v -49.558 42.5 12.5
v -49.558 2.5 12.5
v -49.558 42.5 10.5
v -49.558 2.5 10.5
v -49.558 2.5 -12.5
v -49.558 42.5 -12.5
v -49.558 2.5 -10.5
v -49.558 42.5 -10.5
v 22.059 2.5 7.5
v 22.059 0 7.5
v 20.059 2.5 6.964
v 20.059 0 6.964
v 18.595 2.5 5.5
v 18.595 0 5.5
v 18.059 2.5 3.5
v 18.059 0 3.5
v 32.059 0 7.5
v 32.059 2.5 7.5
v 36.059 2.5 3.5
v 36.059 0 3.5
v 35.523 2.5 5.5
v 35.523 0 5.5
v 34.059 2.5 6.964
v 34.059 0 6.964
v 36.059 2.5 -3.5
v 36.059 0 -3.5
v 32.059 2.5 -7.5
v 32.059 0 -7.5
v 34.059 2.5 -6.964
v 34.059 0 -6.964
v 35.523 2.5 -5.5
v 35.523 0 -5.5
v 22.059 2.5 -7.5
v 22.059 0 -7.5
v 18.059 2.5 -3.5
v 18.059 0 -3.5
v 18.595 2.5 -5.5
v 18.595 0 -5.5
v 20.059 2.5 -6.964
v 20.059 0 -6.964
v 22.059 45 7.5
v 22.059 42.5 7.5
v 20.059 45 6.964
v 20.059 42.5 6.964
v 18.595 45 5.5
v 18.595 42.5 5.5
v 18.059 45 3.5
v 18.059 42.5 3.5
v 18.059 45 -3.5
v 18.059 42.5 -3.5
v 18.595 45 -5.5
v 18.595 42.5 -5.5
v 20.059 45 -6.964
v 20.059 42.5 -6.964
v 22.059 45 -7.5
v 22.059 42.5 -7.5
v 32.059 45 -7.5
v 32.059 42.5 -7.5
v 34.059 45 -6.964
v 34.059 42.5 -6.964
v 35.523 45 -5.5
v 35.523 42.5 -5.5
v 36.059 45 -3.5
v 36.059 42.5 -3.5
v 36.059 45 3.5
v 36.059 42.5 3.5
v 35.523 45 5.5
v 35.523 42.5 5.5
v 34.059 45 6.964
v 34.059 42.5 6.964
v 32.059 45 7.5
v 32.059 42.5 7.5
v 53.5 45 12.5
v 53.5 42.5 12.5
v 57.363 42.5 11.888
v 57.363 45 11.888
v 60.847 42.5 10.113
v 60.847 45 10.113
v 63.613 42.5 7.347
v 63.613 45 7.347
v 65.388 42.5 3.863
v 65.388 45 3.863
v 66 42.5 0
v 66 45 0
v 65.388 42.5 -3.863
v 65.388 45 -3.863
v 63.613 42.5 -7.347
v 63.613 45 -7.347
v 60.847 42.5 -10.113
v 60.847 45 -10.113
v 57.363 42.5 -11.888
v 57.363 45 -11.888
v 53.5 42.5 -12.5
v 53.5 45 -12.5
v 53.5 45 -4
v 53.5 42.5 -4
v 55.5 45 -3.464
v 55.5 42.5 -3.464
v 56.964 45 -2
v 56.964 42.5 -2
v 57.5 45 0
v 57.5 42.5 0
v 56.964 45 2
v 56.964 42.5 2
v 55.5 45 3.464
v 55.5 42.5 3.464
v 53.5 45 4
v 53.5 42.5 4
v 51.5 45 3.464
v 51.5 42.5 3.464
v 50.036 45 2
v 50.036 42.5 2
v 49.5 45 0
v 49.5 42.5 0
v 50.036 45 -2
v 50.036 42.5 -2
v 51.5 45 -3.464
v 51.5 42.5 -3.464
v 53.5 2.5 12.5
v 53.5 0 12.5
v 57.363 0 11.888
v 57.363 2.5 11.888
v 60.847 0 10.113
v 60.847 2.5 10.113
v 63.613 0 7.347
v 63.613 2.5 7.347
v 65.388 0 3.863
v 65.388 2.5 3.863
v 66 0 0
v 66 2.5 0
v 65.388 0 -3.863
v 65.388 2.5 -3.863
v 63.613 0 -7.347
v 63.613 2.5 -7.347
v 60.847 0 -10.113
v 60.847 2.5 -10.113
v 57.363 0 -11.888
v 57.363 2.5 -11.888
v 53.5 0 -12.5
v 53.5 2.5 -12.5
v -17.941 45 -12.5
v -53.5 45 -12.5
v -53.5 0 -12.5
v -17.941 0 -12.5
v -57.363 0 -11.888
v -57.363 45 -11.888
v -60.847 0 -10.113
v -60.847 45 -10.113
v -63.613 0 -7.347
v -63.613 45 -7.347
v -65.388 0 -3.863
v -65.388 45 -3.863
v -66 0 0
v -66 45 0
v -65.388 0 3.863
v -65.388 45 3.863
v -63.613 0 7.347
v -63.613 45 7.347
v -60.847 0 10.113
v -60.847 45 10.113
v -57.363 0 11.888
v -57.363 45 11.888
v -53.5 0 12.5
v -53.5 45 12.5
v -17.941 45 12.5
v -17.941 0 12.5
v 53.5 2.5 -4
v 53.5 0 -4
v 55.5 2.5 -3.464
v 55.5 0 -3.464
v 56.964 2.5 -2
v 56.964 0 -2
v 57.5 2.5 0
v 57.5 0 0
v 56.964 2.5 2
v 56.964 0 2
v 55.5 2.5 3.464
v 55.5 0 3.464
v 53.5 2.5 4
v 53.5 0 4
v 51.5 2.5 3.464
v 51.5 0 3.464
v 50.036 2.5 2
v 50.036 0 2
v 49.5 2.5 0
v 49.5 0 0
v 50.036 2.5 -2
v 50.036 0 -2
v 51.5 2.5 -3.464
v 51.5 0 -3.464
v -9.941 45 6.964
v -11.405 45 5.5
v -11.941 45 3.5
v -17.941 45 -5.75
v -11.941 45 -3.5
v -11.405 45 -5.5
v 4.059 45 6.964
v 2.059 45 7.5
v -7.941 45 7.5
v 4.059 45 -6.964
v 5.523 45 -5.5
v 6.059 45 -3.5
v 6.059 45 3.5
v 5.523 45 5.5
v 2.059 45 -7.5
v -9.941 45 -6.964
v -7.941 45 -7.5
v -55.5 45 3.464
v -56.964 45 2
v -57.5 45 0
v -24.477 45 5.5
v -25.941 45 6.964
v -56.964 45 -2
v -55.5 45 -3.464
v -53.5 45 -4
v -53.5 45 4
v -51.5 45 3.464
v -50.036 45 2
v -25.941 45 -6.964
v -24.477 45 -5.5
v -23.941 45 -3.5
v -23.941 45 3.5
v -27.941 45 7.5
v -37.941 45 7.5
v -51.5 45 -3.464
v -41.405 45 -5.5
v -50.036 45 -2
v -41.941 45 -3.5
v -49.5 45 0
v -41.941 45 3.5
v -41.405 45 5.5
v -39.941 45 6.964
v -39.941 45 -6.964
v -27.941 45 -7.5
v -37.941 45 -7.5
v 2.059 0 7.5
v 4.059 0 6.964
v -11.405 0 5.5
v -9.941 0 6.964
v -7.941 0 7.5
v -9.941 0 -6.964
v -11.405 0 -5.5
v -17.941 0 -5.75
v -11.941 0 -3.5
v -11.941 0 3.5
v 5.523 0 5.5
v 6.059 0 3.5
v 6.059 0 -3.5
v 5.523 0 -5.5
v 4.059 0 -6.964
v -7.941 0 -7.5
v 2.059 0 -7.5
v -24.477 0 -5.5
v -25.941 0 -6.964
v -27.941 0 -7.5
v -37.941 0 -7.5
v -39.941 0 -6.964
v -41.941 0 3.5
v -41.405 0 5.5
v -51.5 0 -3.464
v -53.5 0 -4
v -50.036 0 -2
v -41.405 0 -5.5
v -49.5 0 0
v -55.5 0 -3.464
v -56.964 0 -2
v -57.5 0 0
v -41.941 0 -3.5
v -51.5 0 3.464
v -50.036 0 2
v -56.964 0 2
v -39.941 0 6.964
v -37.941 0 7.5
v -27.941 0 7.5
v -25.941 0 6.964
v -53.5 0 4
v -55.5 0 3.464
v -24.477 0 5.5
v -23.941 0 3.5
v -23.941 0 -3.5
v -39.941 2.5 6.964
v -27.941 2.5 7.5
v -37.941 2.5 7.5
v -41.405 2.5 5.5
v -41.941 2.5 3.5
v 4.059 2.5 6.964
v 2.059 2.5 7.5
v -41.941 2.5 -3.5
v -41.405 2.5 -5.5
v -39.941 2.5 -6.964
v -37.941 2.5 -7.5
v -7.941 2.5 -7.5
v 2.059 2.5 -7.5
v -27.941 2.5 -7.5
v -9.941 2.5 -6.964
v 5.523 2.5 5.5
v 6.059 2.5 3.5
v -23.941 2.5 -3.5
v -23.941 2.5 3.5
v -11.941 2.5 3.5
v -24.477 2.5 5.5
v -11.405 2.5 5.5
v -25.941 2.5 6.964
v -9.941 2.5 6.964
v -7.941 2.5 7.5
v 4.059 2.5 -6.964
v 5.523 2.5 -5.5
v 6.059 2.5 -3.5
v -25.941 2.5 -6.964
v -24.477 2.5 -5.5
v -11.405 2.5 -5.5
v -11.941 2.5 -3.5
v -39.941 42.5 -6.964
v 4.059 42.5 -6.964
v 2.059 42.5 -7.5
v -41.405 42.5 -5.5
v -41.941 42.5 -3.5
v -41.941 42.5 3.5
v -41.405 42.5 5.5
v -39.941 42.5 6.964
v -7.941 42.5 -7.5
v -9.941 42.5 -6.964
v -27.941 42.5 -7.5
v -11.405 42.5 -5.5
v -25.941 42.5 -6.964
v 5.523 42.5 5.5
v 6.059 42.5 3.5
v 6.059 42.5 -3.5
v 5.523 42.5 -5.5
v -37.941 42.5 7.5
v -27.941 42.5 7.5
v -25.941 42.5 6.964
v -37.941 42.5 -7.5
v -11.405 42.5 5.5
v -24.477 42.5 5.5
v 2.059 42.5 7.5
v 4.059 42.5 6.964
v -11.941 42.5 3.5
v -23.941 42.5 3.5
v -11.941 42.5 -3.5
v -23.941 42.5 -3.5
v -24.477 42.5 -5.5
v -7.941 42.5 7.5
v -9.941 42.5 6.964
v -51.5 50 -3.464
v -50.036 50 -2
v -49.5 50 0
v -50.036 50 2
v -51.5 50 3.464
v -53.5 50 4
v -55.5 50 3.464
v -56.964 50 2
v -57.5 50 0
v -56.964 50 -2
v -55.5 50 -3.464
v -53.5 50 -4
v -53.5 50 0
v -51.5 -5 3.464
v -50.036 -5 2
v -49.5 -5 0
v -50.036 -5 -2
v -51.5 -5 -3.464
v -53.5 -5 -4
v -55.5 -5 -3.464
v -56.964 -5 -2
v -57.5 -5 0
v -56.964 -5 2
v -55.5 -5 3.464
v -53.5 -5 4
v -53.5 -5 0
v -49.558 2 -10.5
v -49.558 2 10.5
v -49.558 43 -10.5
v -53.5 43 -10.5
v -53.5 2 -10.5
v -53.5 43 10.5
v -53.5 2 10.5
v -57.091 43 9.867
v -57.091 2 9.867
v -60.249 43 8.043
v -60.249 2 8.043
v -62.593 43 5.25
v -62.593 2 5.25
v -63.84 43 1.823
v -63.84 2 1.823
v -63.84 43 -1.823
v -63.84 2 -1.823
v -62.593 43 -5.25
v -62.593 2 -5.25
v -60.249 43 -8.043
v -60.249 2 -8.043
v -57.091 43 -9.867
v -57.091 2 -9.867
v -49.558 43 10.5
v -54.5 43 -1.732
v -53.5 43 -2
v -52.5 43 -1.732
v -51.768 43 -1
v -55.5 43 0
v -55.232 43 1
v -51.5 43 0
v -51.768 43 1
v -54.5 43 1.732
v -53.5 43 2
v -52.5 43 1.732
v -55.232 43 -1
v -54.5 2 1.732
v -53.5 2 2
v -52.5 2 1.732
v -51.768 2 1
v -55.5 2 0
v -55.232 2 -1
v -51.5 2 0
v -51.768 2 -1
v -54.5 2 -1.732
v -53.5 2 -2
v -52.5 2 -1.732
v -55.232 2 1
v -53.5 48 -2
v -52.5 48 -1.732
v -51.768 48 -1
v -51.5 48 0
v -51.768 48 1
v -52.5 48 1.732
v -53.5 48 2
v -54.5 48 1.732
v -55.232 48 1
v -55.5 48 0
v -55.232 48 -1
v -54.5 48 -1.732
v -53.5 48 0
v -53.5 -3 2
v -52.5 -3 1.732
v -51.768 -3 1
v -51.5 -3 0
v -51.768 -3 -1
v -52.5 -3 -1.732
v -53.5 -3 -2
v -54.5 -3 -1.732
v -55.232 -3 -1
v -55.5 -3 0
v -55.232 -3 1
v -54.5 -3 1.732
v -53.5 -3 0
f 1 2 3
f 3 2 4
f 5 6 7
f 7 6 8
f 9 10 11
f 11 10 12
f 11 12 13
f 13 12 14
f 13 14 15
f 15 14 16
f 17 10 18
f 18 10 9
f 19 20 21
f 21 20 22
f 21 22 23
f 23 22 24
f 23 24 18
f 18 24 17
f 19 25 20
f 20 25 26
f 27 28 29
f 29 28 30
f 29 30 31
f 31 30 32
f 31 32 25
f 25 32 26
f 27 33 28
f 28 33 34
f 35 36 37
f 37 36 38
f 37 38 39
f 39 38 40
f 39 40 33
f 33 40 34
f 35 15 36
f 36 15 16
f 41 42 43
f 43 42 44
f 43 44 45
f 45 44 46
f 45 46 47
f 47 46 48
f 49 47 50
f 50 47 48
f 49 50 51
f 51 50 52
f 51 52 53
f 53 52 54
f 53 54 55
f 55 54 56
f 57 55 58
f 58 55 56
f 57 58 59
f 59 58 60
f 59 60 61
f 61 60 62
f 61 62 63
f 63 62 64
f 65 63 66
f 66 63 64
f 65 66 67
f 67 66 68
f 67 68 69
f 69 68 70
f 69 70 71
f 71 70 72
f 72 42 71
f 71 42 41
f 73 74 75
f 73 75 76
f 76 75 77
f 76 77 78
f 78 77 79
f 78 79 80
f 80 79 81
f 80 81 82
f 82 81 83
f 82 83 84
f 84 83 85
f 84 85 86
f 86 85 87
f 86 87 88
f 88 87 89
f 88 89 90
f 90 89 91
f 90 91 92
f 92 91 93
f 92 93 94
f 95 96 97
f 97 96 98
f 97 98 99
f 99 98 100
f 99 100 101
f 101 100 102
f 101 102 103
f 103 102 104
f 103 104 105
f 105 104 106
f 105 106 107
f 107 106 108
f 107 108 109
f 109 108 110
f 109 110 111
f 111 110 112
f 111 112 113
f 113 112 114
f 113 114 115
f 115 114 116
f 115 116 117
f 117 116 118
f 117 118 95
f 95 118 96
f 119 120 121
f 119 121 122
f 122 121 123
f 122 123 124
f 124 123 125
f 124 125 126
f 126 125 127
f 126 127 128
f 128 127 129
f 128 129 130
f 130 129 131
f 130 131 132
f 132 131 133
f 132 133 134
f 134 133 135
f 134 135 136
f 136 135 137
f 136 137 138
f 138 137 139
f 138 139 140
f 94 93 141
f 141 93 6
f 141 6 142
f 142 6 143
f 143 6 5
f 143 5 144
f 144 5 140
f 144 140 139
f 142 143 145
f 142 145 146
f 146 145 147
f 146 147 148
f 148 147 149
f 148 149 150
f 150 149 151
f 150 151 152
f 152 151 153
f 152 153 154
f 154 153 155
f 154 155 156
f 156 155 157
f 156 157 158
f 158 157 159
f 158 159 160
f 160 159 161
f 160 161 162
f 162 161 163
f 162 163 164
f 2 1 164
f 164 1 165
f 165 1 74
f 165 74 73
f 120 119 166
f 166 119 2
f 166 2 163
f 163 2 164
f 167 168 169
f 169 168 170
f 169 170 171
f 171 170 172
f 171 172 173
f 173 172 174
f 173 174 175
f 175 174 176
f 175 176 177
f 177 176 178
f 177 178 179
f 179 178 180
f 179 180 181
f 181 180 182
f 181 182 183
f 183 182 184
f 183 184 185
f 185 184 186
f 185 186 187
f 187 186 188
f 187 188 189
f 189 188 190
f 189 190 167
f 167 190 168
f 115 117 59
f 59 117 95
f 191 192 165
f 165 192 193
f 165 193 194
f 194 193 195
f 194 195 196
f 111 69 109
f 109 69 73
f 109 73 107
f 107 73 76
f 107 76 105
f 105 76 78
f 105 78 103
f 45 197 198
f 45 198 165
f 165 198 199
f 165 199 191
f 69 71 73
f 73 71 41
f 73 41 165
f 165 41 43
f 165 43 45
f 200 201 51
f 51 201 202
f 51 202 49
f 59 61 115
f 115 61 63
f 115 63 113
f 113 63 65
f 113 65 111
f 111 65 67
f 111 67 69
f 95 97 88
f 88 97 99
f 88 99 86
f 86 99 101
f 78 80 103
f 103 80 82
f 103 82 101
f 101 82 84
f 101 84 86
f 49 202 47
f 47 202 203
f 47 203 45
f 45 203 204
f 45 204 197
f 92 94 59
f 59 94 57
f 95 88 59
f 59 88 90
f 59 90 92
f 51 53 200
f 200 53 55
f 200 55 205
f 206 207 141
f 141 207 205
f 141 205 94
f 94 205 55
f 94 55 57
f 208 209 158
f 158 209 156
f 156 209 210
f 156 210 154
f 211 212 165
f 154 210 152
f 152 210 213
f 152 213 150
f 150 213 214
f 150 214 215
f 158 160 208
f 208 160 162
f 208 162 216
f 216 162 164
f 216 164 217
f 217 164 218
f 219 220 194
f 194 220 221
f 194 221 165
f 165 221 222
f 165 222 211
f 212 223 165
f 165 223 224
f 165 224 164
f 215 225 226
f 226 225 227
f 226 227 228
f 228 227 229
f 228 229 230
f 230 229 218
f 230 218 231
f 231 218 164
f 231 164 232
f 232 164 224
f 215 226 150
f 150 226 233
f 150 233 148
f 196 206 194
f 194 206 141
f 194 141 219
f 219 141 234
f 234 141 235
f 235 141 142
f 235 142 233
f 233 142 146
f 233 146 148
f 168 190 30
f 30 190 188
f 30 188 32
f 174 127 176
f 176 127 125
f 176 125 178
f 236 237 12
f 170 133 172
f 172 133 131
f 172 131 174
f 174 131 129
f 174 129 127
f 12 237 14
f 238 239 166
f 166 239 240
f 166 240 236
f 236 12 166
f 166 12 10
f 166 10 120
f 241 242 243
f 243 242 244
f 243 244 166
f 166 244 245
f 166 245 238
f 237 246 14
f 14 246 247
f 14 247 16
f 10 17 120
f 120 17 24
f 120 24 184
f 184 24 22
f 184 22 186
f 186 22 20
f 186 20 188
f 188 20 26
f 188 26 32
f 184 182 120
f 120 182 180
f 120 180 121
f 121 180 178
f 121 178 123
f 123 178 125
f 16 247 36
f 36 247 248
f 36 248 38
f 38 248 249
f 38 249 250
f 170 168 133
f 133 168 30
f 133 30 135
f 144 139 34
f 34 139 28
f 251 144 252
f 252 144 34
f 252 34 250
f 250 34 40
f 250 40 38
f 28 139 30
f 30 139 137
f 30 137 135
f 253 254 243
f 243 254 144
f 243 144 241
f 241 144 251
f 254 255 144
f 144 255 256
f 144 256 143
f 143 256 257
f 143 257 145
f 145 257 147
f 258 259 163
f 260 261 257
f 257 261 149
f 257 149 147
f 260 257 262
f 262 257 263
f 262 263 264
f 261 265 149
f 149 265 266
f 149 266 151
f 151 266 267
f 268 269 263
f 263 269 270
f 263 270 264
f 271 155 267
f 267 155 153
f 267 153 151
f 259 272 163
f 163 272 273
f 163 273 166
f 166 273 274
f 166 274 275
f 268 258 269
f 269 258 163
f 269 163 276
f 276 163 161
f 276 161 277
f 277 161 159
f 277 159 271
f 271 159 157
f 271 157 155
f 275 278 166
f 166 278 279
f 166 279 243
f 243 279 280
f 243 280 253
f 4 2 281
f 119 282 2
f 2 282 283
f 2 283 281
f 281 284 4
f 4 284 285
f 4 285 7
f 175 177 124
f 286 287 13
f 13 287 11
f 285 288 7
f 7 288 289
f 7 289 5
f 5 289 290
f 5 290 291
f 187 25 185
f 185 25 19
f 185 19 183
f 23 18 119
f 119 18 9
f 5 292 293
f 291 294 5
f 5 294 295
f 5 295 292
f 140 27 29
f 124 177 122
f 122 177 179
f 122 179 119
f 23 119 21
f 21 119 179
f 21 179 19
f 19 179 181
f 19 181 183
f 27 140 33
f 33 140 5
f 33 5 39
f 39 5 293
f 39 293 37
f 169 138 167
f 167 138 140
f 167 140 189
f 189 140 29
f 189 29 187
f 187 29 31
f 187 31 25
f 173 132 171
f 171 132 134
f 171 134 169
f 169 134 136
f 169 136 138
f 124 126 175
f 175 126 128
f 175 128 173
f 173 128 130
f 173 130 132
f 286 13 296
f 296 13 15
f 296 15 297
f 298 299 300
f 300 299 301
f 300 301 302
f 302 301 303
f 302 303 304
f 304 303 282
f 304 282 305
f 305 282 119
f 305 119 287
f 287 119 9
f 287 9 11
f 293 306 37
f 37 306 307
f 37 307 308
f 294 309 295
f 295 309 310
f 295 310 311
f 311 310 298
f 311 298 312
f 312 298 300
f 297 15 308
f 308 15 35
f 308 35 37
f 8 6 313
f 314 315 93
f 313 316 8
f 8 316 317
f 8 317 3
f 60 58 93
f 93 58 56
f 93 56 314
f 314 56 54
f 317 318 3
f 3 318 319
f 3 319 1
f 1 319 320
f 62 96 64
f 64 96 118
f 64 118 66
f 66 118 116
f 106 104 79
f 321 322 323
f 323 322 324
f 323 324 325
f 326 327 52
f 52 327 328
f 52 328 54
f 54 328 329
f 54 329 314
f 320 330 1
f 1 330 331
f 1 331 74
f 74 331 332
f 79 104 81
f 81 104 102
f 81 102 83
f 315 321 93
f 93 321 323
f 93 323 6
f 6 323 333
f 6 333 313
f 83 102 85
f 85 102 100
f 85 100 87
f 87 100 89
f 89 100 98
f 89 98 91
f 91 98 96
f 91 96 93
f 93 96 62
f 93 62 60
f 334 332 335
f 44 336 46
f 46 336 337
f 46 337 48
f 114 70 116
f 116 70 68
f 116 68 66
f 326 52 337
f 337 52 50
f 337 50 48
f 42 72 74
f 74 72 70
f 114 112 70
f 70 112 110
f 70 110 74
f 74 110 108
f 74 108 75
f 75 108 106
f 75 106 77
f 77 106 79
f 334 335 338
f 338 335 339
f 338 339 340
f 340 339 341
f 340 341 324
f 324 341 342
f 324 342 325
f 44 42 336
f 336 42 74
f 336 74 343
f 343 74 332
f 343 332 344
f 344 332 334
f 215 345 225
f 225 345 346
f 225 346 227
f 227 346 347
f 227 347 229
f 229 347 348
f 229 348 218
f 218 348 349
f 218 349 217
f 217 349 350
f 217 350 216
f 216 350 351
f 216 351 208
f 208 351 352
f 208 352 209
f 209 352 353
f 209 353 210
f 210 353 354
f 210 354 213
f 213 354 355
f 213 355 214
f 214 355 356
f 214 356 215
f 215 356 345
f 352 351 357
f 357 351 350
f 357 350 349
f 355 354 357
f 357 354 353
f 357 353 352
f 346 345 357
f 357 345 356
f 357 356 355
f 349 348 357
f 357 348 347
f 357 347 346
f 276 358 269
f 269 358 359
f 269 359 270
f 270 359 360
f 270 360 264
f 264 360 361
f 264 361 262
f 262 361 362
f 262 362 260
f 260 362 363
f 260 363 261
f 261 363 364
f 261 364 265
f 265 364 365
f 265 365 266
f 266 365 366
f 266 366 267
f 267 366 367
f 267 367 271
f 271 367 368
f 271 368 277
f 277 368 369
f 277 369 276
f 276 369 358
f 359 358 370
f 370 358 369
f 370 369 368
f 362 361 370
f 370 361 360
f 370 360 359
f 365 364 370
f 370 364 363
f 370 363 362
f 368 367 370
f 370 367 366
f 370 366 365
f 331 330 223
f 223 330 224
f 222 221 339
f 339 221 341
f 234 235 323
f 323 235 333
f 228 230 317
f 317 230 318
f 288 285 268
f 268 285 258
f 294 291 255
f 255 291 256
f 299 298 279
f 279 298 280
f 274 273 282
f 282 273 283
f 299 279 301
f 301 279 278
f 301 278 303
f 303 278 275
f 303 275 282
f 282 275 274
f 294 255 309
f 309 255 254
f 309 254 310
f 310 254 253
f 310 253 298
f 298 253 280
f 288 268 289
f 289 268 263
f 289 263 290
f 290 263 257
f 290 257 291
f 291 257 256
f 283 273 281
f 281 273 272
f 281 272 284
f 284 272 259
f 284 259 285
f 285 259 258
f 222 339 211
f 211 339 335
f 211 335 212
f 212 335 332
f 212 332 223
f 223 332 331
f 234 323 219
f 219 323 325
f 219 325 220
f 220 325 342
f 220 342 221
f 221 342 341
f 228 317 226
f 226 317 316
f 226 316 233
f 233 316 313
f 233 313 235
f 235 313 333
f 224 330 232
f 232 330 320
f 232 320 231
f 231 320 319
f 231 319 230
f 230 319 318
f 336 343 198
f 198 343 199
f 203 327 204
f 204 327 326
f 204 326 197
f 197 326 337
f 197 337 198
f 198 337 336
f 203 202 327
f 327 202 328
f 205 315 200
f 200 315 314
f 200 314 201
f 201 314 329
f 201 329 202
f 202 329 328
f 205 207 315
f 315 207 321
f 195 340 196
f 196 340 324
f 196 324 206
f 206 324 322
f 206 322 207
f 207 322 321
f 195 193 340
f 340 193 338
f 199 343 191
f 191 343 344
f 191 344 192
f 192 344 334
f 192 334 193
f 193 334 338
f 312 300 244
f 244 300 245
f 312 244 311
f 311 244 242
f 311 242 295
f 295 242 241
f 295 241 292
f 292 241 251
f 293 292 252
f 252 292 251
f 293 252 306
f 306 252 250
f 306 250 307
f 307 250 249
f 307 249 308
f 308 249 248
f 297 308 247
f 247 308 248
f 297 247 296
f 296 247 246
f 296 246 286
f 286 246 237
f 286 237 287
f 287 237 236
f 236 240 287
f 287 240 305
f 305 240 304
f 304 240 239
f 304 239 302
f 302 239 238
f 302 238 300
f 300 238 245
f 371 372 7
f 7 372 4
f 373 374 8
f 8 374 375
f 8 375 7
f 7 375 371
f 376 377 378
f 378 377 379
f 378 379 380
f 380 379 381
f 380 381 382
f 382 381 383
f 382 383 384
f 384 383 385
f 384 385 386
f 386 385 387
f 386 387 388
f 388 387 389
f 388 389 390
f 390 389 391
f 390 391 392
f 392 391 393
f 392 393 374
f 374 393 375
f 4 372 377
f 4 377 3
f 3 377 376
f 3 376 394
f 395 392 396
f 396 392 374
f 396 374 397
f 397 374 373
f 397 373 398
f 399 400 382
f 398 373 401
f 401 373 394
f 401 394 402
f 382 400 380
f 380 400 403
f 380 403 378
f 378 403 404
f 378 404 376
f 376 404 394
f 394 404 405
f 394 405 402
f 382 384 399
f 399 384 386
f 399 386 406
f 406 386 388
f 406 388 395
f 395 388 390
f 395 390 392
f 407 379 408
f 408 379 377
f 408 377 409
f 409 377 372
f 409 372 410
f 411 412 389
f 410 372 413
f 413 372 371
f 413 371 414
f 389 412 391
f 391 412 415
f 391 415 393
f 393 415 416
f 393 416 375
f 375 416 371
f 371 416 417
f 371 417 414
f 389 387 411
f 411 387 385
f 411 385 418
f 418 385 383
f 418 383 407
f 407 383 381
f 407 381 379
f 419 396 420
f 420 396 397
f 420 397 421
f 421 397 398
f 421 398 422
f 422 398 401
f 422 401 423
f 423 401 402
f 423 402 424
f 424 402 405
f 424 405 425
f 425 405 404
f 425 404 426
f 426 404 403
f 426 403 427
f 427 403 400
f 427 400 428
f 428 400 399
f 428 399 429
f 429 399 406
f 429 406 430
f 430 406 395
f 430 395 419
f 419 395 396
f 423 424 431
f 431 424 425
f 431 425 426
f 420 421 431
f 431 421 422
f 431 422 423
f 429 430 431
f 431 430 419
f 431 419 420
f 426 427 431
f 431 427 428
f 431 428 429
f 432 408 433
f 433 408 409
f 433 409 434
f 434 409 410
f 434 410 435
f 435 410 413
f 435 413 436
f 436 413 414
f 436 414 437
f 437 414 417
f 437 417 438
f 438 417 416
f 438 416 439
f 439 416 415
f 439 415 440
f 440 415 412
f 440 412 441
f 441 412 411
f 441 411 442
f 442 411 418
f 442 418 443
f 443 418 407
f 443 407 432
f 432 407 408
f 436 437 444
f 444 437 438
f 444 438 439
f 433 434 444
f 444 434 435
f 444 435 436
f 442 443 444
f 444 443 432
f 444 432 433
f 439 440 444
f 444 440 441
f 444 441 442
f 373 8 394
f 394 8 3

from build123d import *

# Parameters (mm, degrees)
SKETCH1_R              = 4
BOSS_EXTRUDE1_DEPTH    = 45
SKETCH2_W              = 50.339144224
SKETCH2_H              = 25
CUT_EXTRUDE1_DEPTH     = 20
SKETCH3_R              = 4
BOSS_EXTRUDE2_DEPTH    = 5
CUT_EXTRUDE2_REACH     = 88.493
SKETCH4_W              = 77.888808367
SKETCH4_H              = 40
SKETCH5_W              = 18
SKETCH5_H              = 15
CUT_EXTRUDE3_DEPTH     = 84.739178405
FILLET1_R              = 4
LPATTERN1_COUNT        = 3
LPATTERN1_PITCH        = 30
FILLET1_OF_LPATTERN1_R = 4
SHELL1_START           = 2
SHELL1_DEPTH           = 41
SHELL1_START_2         = -3
SHELL1_2_OUTLINE_R     = 2
SHELL1_2_DEPTH         = 51


# Read off the part's stored shape, not the designer's step: Shell1
with BuildPart() as part:
    # Sketch1 → Boss-Extrude1 (new body)
    with BuildSketch(Plane(origin=(0, 0, 0), x_dir=(1, 0, 0), z_dir=(0, 1, 0))):
        with BuildLine():
            Line((-53.5, -12.5), (53.5, -12.5))
            ThreePointArc((53.5, -12.5), (66, 0), (53.5, 12.5))
            Line((53.5, 12.5), (-53.5, 12.5))
            ThreePointArc((-53.5, 12.5), (-66, 0), (-53.5, -12.5))
        make_face()
        with Locations(Location((53.5, 0, 0), (0, 0, 90))):
            Circle(SKETCH1_R, mode=Mode.SUBTRACT)
    extrude(amount=BOSS_EXTRUDE1_DEPTH)

    # Sketch2 → Cut-Extrude1 (cut, symmetric)
    with BuildSketch(Plane(origin=(0, 22.5, 0), x_dir=(1, 0, 0), z_dir=(0, 1, 0))):
        with Locations((53.5, 0)):
            Rectangle(SKETCH2_W, SKETCH2_H)
    extrude(amount=CUT_EXTRUDE1_DEPTH, both=True, mode=Mode.SUBTRACT)

    # Sketch3 → Boss-Extrude2 (add, symmetric)
    with BuildSketch(Plane(origin=(0, 45, 0), x_dir=(1, 0, 0), z_dir=(0, 1, 0))):
        with Locations(Location((-53.5, 0, 0), (0, 0, 270))):
            Circle(SKETCH3_R)
    boss_extrude2 = extrude(amount=BOSS_EXTRUDE2_DEPTH, both=True)

    # Mirror1: Boss-Extrude2 across plane
    add(boss_extrude2.mirror(Plane.ZX.offset(22.5)))

    # Sketch4 → Cut-Extrude2 (cut, up to next)
    with BuildSketch(Plane(origin=(0, 0, -12.5), x_dir=(-1, 0, 0), z_dir=(0, 0, -1)), mode=Mode.PRIVATE) as cut_extrude2_sk1:
        with Locations((10.613976295, 22.5)):
            Rectangle(SKETCH4_W, SKETCH4_H)
    cut_extrude2_tool1 = extrude(cut_extrude2_sk1.sketch, amount=-CUT_EXTRUDE2_REACH, mode=Mode.PRIVATE) & part.part
    add(cut_extrude2_tool1.solids().sort_by_distance((-10.613976, 22.5, -12.5))[0], mode=Mode.SUBTRACT)

    # Sketch5 → Cut-Extrude3 (cut, through all)
    with BuildSketch(Plane(origin=(0, 45, 0), x_dir=(1, 0, 0), z_dir=(0, 1, 0))):
        with Locations((-32.941043084, 0)):
            Rectangle(SKETCH5_W, SKETCH5_H)
    cut_extrude3 = extrude(amount=-CUT_EXTRUDE3_DEPTH, mode=Mode.SUBTRACT)

    # Fillet1
    fillet1_edges = [part.edges().sort_by_distance(p)[0] for p in [
        (-41.941043084, 1.25, 7.5),
        (-41.941043084, 1.25, -7.5),
        (-23.941043084, 1.25, -7.5),
        (-23.941043084, 1.25, 7.5),
        (-41.941043084, 43.75, 7.5),
        (-41.941043084, 43.75, -7.5),
        (-23.941043084, 43.75, -7.5),
        (-23.941043084, 43.75, 7.5),
    ]]
    fillet(fillet1_edges, radius=FILLET1_R)

    # LPattern1: Cut-Extrude3 ×3
    with Locations(*[(i * LPATTERN1_PITCH, 0, 0) for i in range(1, LPATTERN1_COUNT)]):
        add(cut_extrude3, mode=Mode.SUBTRACT)

    # Fillet1 of LPattern1
    fillet1_of_lpattern1_edges = [part.edges().sort_by_distance(p)[0] for p in [
        (-11.941043084, 1.25, 7.5),
        (-11.941043084, 1.25, -7.5),
        (6.058956916, 1.25, -7.5),
        (6.058956916, 1.25, 7.5),
        (-11.941043084, 43.75, 7.5),
        (-11.941043084, 43.75, -7.5),
        (6.058956916, 43.75, -7.5),
        (6.058956916, 43.75, 7.5),
        (18.058956916, 1.25, 7.5),
        (18.058956916, 1.25, -7.5),
        (36.058956916, 1.25, -7.5),
        (36.058956916, 1.25, 7.5),
        (18.058956916, 43.75, 7.5),
        (18.058956916, 43.75, -7.5),
        (36.058956916, 43.75, -7.5),
        (36.058956916, 43.75, 7.5),
    ]]
    fillet(fillet1_of_lpattern1_edges, radius=FILLET1_OF_LPATTERN1_R)

    # Shell1 outline → Shell1 (cut)
    with BuildSketch(Plane(origin=(0, 0, 0), x_dir=(1, 0, 0), z_dir=(0, 1, 0)).offset(SHELL1_START)):
        with BuildLine():
            Line((-49.558380479, -10.5), (-49.558380479, 10.5))
            Line((-49.558380479, 10.5), (-53.5, 10.5))
            ThreePointArc((-53.5, 10.5), (-64, 0), (-53.5, -10.5))
            Line((-53.5, -10.5), (-49.558380479, -10.5))
        make_face()
    extrude(amount=SHELL1_DEPTH, mode=Mode.SUBTRACT)

    # Shell1 2 outline → Shell1 2 (cut)
    with BuildSketch(Plane(origin=(0, 0, 0), x_dir=(1, 0, 0), z_dir=(0, 1, 0)).offset(SHELL1_START_2)):
        with Locations((-53.5, 0)):
            Circle(SHELL1_2_OUTLINE_R)
    extrude(amount=SHELL1_2_DEPTH, mode=Mode.SUBTRACT)


solid = part.part
